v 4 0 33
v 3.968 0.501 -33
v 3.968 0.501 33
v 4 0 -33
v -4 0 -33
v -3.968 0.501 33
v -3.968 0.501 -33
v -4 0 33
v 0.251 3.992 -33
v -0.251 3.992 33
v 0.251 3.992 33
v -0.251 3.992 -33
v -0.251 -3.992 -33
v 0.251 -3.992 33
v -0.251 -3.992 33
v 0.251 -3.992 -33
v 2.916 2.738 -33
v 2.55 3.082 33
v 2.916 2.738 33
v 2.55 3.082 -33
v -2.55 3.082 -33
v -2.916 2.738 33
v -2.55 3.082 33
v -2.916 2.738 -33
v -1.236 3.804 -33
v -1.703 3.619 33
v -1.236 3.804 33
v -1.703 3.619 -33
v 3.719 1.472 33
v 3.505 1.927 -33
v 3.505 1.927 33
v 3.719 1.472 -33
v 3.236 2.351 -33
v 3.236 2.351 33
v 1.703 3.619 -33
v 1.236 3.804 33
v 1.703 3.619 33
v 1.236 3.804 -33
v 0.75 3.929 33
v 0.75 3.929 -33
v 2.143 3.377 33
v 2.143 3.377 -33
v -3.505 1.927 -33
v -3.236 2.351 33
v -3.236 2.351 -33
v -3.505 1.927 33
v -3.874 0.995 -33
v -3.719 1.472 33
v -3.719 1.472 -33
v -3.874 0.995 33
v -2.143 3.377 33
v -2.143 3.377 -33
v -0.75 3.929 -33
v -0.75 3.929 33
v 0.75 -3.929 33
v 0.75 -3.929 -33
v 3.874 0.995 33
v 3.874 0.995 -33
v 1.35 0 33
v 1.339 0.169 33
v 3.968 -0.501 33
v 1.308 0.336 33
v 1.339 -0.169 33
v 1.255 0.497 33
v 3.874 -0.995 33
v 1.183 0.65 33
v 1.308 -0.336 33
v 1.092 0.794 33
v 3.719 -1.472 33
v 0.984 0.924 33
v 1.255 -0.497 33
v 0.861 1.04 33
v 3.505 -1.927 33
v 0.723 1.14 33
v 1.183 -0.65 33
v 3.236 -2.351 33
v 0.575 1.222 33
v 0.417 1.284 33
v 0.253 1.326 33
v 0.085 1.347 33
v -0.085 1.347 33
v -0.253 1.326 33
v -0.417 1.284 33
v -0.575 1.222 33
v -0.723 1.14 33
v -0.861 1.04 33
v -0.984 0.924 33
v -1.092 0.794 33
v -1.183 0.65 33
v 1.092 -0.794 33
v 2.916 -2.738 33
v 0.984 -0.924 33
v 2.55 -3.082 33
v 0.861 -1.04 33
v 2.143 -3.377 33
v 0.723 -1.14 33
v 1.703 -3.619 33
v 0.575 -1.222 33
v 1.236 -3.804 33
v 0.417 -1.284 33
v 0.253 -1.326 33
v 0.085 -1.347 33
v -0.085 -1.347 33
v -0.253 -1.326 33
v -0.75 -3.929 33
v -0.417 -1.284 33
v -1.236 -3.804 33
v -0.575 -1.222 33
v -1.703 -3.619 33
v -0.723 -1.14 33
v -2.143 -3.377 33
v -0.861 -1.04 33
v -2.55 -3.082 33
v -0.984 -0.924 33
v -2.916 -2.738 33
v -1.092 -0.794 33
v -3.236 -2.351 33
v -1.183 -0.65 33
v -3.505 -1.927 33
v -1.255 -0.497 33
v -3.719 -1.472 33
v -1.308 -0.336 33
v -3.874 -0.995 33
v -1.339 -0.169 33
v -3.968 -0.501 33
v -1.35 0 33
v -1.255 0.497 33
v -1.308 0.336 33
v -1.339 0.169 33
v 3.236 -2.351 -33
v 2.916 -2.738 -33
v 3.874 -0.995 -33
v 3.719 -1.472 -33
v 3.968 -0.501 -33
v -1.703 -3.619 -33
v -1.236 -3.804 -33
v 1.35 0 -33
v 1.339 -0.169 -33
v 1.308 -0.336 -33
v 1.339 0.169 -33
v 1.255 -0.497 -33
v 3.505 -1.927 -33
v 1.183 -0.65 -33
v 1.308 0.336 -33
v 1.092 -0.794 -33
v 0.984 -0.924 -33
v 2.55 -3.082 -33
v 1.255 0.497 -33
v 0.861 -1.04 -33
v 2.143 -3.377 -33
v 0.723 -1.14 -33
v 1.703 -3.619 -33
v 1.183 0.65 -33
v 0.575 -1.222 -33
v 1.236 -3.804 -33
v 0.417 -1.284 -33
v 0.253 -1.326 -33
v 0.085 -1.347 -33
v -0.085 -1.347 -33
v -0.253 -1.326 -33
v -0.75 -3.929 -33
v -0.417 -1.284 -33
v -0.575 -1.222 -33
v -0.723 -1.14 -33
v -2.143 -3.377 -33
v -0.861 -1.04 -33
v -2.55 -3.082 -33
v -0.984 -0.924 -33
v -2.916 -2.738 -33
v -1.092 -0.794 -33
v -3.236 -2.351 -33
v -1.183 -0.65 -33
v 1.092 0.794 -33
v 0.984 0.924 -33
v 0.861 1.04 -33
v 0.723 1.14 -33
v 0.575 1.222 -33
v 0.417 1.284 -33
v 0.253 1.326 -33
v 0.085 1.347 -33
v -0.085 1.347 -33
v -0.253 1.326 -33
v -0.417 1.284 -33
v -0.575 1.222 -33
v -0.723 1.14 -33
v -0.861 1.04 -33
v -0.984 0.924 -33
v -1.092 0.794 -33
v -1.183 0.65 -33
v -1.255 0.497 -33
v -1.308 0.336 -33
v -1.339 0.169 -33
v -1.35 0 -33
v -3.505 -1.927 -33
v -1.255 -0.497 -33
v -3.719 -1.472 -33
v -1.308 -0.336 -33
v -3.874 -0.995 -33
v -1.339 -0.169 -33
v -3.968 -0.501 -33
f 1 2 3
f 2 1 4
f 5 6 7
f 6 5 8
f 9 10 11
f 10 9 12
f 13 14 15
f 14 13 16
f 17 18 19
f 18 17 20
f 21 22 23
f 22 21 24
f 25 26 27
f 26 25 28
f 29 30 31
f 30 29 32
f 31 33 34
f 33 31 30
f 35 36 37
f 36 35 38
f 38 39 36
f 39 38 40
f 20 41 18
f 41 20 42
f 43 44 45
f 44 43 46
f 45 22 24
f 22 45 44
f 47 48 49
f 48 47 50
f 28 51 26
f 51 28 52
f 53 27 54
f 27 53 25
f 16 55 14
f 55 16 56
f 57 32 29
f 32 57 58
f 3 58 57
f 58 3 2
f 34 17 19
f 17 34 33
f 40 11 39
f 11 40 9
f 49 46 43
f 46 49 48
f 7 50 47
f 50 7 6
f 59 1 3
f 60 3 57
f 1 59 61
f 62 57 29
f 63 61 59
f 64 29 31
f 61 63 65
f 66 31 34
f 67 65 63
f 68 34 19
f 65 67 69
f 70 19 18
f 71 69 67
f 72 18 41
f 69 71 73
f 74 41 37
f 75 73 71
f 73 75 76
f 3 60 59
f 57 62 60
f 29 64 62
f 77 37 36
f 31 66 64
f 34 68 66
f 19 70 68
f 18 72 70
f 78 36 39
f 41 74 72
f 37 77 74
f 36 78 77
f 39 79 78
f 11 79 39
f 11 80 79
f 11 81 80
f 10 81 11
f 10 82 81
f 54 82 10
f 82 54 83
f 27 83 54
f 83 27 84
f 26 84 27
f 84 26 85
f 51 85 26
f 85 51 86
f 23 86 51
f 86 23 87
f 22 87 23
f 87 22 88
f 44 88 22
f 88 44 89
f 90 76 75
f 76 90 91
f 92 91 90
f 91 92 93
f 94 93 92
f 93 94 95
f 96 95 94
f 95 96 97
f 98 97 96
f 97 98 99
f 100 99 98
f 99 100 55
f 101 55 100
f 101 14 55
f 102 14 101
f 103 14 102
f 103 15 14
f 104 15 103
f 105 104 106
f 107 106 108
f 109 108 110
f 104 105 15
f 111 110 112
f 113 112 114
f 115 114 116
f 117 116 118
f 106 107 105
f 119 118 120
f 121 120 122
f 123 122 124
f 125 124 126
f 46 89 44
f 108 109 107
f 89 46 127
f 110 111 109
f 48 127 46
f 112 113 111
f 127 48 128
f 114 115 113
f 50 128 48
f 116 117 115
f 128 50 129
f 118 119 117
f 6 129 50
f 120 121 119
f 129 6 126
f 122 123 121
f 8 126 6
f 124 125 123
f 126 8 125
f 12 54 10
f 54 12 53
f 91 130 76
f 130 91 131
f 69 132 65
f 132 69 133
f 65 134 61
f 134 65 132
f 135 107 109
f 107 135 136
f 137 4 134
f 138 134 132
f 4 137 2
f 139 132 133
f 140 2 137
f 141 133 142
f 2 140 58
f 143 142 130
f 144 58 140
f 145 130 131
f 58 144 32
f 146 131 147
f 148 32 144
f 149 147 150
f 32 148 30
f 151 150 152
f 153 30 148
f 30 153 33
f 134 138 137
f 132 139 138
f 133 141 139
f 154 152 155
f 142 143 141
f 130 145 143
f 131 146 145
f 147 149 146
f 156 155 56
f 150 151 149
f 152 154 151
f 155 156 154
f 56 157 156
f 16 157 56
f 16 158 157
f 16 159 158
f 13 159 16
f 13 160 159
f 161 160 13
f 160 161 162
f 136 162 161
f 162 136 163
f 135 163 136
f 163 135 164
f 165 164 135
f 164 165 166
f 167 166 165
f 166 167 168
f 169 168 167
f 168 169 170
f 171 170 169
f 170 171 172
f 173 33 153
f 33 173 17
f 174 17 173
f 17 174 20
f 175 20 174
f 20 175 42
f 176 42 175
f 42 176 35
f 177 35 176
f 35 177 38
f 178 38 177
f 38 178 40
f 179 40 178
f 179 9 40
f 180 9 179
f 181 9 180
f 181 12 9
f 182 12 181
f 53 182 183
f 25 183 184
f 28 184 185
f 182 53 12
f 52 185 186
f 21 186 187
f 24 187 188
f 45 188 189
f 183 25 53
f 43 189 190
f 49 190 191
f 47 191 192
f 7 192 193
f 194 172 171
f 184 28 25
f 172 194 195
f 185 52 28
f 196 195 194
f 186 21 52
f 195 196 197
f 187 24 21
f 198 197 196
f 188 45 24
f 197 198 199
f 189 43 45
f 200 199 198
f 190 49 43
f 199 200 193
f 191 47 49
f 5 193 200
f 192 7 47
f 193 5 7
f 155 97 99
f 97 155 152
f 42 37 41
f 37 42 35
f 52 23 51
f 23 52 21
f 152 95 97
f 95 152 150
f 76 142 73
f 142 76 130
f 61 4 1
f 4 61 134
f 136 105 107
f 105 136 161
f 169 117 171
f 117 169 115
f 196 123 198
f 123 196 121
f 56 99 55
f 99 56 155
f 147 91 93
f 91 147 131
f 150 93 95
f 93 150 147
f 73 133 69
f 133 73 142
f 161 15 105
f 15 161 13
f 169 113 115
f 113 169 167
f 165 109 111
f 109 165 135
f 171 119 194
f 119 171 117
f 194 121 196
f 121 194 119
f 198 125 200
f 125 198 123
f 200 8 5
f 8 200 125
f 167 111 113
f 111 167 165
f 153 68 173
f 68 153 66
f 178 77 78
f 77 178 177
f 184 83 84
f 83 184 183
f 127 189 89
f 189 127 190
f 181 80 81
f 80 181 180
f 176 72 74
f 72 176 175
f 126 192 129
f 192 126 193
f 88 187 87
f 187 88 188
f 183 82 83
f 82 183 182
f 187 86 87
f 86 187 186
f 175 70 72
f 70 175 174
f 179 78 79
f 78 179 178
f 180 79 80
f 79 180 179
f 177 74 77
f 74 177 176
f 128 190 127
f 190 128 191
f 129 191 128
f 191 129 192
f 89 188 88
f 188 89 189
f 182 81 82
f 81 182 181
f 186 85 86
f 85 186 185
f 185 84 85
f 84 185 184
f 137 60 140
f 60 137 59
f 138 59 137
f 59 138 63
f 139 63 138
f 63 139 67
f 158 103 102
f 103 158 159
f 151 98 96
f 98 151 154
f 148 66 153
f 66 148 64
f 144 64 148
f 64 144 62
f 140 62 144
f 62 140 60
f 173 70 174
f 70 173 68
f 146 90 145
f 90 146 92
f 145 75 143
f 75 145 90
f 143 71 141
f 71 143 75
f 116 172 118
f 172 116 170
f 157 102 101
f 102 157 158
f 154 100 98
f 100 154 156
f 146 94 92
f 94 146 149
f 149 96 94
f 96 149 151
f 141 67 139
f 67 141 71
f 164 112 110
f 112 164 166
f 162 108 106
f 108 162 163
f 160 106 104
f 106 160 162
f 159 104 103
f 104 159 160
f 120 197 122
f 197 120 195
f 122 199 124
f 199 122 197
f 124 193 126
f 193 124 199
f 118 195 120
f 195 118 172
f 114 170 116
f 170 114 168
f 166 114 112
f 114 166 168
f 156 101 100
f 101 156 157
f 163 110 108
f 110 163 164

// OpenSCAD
$fn = 50;


difference() {
	union() {
		translate(v = [0, 0, -33.0000000000]) {
			cylinder(h = 66, r = 4.0000000000);
		}
	}
	union() {
		translate(v = [0, 0, -100.0000000000]) {
			cylinder(h = 200, r = 1.3500000000);
		}
	}
}
